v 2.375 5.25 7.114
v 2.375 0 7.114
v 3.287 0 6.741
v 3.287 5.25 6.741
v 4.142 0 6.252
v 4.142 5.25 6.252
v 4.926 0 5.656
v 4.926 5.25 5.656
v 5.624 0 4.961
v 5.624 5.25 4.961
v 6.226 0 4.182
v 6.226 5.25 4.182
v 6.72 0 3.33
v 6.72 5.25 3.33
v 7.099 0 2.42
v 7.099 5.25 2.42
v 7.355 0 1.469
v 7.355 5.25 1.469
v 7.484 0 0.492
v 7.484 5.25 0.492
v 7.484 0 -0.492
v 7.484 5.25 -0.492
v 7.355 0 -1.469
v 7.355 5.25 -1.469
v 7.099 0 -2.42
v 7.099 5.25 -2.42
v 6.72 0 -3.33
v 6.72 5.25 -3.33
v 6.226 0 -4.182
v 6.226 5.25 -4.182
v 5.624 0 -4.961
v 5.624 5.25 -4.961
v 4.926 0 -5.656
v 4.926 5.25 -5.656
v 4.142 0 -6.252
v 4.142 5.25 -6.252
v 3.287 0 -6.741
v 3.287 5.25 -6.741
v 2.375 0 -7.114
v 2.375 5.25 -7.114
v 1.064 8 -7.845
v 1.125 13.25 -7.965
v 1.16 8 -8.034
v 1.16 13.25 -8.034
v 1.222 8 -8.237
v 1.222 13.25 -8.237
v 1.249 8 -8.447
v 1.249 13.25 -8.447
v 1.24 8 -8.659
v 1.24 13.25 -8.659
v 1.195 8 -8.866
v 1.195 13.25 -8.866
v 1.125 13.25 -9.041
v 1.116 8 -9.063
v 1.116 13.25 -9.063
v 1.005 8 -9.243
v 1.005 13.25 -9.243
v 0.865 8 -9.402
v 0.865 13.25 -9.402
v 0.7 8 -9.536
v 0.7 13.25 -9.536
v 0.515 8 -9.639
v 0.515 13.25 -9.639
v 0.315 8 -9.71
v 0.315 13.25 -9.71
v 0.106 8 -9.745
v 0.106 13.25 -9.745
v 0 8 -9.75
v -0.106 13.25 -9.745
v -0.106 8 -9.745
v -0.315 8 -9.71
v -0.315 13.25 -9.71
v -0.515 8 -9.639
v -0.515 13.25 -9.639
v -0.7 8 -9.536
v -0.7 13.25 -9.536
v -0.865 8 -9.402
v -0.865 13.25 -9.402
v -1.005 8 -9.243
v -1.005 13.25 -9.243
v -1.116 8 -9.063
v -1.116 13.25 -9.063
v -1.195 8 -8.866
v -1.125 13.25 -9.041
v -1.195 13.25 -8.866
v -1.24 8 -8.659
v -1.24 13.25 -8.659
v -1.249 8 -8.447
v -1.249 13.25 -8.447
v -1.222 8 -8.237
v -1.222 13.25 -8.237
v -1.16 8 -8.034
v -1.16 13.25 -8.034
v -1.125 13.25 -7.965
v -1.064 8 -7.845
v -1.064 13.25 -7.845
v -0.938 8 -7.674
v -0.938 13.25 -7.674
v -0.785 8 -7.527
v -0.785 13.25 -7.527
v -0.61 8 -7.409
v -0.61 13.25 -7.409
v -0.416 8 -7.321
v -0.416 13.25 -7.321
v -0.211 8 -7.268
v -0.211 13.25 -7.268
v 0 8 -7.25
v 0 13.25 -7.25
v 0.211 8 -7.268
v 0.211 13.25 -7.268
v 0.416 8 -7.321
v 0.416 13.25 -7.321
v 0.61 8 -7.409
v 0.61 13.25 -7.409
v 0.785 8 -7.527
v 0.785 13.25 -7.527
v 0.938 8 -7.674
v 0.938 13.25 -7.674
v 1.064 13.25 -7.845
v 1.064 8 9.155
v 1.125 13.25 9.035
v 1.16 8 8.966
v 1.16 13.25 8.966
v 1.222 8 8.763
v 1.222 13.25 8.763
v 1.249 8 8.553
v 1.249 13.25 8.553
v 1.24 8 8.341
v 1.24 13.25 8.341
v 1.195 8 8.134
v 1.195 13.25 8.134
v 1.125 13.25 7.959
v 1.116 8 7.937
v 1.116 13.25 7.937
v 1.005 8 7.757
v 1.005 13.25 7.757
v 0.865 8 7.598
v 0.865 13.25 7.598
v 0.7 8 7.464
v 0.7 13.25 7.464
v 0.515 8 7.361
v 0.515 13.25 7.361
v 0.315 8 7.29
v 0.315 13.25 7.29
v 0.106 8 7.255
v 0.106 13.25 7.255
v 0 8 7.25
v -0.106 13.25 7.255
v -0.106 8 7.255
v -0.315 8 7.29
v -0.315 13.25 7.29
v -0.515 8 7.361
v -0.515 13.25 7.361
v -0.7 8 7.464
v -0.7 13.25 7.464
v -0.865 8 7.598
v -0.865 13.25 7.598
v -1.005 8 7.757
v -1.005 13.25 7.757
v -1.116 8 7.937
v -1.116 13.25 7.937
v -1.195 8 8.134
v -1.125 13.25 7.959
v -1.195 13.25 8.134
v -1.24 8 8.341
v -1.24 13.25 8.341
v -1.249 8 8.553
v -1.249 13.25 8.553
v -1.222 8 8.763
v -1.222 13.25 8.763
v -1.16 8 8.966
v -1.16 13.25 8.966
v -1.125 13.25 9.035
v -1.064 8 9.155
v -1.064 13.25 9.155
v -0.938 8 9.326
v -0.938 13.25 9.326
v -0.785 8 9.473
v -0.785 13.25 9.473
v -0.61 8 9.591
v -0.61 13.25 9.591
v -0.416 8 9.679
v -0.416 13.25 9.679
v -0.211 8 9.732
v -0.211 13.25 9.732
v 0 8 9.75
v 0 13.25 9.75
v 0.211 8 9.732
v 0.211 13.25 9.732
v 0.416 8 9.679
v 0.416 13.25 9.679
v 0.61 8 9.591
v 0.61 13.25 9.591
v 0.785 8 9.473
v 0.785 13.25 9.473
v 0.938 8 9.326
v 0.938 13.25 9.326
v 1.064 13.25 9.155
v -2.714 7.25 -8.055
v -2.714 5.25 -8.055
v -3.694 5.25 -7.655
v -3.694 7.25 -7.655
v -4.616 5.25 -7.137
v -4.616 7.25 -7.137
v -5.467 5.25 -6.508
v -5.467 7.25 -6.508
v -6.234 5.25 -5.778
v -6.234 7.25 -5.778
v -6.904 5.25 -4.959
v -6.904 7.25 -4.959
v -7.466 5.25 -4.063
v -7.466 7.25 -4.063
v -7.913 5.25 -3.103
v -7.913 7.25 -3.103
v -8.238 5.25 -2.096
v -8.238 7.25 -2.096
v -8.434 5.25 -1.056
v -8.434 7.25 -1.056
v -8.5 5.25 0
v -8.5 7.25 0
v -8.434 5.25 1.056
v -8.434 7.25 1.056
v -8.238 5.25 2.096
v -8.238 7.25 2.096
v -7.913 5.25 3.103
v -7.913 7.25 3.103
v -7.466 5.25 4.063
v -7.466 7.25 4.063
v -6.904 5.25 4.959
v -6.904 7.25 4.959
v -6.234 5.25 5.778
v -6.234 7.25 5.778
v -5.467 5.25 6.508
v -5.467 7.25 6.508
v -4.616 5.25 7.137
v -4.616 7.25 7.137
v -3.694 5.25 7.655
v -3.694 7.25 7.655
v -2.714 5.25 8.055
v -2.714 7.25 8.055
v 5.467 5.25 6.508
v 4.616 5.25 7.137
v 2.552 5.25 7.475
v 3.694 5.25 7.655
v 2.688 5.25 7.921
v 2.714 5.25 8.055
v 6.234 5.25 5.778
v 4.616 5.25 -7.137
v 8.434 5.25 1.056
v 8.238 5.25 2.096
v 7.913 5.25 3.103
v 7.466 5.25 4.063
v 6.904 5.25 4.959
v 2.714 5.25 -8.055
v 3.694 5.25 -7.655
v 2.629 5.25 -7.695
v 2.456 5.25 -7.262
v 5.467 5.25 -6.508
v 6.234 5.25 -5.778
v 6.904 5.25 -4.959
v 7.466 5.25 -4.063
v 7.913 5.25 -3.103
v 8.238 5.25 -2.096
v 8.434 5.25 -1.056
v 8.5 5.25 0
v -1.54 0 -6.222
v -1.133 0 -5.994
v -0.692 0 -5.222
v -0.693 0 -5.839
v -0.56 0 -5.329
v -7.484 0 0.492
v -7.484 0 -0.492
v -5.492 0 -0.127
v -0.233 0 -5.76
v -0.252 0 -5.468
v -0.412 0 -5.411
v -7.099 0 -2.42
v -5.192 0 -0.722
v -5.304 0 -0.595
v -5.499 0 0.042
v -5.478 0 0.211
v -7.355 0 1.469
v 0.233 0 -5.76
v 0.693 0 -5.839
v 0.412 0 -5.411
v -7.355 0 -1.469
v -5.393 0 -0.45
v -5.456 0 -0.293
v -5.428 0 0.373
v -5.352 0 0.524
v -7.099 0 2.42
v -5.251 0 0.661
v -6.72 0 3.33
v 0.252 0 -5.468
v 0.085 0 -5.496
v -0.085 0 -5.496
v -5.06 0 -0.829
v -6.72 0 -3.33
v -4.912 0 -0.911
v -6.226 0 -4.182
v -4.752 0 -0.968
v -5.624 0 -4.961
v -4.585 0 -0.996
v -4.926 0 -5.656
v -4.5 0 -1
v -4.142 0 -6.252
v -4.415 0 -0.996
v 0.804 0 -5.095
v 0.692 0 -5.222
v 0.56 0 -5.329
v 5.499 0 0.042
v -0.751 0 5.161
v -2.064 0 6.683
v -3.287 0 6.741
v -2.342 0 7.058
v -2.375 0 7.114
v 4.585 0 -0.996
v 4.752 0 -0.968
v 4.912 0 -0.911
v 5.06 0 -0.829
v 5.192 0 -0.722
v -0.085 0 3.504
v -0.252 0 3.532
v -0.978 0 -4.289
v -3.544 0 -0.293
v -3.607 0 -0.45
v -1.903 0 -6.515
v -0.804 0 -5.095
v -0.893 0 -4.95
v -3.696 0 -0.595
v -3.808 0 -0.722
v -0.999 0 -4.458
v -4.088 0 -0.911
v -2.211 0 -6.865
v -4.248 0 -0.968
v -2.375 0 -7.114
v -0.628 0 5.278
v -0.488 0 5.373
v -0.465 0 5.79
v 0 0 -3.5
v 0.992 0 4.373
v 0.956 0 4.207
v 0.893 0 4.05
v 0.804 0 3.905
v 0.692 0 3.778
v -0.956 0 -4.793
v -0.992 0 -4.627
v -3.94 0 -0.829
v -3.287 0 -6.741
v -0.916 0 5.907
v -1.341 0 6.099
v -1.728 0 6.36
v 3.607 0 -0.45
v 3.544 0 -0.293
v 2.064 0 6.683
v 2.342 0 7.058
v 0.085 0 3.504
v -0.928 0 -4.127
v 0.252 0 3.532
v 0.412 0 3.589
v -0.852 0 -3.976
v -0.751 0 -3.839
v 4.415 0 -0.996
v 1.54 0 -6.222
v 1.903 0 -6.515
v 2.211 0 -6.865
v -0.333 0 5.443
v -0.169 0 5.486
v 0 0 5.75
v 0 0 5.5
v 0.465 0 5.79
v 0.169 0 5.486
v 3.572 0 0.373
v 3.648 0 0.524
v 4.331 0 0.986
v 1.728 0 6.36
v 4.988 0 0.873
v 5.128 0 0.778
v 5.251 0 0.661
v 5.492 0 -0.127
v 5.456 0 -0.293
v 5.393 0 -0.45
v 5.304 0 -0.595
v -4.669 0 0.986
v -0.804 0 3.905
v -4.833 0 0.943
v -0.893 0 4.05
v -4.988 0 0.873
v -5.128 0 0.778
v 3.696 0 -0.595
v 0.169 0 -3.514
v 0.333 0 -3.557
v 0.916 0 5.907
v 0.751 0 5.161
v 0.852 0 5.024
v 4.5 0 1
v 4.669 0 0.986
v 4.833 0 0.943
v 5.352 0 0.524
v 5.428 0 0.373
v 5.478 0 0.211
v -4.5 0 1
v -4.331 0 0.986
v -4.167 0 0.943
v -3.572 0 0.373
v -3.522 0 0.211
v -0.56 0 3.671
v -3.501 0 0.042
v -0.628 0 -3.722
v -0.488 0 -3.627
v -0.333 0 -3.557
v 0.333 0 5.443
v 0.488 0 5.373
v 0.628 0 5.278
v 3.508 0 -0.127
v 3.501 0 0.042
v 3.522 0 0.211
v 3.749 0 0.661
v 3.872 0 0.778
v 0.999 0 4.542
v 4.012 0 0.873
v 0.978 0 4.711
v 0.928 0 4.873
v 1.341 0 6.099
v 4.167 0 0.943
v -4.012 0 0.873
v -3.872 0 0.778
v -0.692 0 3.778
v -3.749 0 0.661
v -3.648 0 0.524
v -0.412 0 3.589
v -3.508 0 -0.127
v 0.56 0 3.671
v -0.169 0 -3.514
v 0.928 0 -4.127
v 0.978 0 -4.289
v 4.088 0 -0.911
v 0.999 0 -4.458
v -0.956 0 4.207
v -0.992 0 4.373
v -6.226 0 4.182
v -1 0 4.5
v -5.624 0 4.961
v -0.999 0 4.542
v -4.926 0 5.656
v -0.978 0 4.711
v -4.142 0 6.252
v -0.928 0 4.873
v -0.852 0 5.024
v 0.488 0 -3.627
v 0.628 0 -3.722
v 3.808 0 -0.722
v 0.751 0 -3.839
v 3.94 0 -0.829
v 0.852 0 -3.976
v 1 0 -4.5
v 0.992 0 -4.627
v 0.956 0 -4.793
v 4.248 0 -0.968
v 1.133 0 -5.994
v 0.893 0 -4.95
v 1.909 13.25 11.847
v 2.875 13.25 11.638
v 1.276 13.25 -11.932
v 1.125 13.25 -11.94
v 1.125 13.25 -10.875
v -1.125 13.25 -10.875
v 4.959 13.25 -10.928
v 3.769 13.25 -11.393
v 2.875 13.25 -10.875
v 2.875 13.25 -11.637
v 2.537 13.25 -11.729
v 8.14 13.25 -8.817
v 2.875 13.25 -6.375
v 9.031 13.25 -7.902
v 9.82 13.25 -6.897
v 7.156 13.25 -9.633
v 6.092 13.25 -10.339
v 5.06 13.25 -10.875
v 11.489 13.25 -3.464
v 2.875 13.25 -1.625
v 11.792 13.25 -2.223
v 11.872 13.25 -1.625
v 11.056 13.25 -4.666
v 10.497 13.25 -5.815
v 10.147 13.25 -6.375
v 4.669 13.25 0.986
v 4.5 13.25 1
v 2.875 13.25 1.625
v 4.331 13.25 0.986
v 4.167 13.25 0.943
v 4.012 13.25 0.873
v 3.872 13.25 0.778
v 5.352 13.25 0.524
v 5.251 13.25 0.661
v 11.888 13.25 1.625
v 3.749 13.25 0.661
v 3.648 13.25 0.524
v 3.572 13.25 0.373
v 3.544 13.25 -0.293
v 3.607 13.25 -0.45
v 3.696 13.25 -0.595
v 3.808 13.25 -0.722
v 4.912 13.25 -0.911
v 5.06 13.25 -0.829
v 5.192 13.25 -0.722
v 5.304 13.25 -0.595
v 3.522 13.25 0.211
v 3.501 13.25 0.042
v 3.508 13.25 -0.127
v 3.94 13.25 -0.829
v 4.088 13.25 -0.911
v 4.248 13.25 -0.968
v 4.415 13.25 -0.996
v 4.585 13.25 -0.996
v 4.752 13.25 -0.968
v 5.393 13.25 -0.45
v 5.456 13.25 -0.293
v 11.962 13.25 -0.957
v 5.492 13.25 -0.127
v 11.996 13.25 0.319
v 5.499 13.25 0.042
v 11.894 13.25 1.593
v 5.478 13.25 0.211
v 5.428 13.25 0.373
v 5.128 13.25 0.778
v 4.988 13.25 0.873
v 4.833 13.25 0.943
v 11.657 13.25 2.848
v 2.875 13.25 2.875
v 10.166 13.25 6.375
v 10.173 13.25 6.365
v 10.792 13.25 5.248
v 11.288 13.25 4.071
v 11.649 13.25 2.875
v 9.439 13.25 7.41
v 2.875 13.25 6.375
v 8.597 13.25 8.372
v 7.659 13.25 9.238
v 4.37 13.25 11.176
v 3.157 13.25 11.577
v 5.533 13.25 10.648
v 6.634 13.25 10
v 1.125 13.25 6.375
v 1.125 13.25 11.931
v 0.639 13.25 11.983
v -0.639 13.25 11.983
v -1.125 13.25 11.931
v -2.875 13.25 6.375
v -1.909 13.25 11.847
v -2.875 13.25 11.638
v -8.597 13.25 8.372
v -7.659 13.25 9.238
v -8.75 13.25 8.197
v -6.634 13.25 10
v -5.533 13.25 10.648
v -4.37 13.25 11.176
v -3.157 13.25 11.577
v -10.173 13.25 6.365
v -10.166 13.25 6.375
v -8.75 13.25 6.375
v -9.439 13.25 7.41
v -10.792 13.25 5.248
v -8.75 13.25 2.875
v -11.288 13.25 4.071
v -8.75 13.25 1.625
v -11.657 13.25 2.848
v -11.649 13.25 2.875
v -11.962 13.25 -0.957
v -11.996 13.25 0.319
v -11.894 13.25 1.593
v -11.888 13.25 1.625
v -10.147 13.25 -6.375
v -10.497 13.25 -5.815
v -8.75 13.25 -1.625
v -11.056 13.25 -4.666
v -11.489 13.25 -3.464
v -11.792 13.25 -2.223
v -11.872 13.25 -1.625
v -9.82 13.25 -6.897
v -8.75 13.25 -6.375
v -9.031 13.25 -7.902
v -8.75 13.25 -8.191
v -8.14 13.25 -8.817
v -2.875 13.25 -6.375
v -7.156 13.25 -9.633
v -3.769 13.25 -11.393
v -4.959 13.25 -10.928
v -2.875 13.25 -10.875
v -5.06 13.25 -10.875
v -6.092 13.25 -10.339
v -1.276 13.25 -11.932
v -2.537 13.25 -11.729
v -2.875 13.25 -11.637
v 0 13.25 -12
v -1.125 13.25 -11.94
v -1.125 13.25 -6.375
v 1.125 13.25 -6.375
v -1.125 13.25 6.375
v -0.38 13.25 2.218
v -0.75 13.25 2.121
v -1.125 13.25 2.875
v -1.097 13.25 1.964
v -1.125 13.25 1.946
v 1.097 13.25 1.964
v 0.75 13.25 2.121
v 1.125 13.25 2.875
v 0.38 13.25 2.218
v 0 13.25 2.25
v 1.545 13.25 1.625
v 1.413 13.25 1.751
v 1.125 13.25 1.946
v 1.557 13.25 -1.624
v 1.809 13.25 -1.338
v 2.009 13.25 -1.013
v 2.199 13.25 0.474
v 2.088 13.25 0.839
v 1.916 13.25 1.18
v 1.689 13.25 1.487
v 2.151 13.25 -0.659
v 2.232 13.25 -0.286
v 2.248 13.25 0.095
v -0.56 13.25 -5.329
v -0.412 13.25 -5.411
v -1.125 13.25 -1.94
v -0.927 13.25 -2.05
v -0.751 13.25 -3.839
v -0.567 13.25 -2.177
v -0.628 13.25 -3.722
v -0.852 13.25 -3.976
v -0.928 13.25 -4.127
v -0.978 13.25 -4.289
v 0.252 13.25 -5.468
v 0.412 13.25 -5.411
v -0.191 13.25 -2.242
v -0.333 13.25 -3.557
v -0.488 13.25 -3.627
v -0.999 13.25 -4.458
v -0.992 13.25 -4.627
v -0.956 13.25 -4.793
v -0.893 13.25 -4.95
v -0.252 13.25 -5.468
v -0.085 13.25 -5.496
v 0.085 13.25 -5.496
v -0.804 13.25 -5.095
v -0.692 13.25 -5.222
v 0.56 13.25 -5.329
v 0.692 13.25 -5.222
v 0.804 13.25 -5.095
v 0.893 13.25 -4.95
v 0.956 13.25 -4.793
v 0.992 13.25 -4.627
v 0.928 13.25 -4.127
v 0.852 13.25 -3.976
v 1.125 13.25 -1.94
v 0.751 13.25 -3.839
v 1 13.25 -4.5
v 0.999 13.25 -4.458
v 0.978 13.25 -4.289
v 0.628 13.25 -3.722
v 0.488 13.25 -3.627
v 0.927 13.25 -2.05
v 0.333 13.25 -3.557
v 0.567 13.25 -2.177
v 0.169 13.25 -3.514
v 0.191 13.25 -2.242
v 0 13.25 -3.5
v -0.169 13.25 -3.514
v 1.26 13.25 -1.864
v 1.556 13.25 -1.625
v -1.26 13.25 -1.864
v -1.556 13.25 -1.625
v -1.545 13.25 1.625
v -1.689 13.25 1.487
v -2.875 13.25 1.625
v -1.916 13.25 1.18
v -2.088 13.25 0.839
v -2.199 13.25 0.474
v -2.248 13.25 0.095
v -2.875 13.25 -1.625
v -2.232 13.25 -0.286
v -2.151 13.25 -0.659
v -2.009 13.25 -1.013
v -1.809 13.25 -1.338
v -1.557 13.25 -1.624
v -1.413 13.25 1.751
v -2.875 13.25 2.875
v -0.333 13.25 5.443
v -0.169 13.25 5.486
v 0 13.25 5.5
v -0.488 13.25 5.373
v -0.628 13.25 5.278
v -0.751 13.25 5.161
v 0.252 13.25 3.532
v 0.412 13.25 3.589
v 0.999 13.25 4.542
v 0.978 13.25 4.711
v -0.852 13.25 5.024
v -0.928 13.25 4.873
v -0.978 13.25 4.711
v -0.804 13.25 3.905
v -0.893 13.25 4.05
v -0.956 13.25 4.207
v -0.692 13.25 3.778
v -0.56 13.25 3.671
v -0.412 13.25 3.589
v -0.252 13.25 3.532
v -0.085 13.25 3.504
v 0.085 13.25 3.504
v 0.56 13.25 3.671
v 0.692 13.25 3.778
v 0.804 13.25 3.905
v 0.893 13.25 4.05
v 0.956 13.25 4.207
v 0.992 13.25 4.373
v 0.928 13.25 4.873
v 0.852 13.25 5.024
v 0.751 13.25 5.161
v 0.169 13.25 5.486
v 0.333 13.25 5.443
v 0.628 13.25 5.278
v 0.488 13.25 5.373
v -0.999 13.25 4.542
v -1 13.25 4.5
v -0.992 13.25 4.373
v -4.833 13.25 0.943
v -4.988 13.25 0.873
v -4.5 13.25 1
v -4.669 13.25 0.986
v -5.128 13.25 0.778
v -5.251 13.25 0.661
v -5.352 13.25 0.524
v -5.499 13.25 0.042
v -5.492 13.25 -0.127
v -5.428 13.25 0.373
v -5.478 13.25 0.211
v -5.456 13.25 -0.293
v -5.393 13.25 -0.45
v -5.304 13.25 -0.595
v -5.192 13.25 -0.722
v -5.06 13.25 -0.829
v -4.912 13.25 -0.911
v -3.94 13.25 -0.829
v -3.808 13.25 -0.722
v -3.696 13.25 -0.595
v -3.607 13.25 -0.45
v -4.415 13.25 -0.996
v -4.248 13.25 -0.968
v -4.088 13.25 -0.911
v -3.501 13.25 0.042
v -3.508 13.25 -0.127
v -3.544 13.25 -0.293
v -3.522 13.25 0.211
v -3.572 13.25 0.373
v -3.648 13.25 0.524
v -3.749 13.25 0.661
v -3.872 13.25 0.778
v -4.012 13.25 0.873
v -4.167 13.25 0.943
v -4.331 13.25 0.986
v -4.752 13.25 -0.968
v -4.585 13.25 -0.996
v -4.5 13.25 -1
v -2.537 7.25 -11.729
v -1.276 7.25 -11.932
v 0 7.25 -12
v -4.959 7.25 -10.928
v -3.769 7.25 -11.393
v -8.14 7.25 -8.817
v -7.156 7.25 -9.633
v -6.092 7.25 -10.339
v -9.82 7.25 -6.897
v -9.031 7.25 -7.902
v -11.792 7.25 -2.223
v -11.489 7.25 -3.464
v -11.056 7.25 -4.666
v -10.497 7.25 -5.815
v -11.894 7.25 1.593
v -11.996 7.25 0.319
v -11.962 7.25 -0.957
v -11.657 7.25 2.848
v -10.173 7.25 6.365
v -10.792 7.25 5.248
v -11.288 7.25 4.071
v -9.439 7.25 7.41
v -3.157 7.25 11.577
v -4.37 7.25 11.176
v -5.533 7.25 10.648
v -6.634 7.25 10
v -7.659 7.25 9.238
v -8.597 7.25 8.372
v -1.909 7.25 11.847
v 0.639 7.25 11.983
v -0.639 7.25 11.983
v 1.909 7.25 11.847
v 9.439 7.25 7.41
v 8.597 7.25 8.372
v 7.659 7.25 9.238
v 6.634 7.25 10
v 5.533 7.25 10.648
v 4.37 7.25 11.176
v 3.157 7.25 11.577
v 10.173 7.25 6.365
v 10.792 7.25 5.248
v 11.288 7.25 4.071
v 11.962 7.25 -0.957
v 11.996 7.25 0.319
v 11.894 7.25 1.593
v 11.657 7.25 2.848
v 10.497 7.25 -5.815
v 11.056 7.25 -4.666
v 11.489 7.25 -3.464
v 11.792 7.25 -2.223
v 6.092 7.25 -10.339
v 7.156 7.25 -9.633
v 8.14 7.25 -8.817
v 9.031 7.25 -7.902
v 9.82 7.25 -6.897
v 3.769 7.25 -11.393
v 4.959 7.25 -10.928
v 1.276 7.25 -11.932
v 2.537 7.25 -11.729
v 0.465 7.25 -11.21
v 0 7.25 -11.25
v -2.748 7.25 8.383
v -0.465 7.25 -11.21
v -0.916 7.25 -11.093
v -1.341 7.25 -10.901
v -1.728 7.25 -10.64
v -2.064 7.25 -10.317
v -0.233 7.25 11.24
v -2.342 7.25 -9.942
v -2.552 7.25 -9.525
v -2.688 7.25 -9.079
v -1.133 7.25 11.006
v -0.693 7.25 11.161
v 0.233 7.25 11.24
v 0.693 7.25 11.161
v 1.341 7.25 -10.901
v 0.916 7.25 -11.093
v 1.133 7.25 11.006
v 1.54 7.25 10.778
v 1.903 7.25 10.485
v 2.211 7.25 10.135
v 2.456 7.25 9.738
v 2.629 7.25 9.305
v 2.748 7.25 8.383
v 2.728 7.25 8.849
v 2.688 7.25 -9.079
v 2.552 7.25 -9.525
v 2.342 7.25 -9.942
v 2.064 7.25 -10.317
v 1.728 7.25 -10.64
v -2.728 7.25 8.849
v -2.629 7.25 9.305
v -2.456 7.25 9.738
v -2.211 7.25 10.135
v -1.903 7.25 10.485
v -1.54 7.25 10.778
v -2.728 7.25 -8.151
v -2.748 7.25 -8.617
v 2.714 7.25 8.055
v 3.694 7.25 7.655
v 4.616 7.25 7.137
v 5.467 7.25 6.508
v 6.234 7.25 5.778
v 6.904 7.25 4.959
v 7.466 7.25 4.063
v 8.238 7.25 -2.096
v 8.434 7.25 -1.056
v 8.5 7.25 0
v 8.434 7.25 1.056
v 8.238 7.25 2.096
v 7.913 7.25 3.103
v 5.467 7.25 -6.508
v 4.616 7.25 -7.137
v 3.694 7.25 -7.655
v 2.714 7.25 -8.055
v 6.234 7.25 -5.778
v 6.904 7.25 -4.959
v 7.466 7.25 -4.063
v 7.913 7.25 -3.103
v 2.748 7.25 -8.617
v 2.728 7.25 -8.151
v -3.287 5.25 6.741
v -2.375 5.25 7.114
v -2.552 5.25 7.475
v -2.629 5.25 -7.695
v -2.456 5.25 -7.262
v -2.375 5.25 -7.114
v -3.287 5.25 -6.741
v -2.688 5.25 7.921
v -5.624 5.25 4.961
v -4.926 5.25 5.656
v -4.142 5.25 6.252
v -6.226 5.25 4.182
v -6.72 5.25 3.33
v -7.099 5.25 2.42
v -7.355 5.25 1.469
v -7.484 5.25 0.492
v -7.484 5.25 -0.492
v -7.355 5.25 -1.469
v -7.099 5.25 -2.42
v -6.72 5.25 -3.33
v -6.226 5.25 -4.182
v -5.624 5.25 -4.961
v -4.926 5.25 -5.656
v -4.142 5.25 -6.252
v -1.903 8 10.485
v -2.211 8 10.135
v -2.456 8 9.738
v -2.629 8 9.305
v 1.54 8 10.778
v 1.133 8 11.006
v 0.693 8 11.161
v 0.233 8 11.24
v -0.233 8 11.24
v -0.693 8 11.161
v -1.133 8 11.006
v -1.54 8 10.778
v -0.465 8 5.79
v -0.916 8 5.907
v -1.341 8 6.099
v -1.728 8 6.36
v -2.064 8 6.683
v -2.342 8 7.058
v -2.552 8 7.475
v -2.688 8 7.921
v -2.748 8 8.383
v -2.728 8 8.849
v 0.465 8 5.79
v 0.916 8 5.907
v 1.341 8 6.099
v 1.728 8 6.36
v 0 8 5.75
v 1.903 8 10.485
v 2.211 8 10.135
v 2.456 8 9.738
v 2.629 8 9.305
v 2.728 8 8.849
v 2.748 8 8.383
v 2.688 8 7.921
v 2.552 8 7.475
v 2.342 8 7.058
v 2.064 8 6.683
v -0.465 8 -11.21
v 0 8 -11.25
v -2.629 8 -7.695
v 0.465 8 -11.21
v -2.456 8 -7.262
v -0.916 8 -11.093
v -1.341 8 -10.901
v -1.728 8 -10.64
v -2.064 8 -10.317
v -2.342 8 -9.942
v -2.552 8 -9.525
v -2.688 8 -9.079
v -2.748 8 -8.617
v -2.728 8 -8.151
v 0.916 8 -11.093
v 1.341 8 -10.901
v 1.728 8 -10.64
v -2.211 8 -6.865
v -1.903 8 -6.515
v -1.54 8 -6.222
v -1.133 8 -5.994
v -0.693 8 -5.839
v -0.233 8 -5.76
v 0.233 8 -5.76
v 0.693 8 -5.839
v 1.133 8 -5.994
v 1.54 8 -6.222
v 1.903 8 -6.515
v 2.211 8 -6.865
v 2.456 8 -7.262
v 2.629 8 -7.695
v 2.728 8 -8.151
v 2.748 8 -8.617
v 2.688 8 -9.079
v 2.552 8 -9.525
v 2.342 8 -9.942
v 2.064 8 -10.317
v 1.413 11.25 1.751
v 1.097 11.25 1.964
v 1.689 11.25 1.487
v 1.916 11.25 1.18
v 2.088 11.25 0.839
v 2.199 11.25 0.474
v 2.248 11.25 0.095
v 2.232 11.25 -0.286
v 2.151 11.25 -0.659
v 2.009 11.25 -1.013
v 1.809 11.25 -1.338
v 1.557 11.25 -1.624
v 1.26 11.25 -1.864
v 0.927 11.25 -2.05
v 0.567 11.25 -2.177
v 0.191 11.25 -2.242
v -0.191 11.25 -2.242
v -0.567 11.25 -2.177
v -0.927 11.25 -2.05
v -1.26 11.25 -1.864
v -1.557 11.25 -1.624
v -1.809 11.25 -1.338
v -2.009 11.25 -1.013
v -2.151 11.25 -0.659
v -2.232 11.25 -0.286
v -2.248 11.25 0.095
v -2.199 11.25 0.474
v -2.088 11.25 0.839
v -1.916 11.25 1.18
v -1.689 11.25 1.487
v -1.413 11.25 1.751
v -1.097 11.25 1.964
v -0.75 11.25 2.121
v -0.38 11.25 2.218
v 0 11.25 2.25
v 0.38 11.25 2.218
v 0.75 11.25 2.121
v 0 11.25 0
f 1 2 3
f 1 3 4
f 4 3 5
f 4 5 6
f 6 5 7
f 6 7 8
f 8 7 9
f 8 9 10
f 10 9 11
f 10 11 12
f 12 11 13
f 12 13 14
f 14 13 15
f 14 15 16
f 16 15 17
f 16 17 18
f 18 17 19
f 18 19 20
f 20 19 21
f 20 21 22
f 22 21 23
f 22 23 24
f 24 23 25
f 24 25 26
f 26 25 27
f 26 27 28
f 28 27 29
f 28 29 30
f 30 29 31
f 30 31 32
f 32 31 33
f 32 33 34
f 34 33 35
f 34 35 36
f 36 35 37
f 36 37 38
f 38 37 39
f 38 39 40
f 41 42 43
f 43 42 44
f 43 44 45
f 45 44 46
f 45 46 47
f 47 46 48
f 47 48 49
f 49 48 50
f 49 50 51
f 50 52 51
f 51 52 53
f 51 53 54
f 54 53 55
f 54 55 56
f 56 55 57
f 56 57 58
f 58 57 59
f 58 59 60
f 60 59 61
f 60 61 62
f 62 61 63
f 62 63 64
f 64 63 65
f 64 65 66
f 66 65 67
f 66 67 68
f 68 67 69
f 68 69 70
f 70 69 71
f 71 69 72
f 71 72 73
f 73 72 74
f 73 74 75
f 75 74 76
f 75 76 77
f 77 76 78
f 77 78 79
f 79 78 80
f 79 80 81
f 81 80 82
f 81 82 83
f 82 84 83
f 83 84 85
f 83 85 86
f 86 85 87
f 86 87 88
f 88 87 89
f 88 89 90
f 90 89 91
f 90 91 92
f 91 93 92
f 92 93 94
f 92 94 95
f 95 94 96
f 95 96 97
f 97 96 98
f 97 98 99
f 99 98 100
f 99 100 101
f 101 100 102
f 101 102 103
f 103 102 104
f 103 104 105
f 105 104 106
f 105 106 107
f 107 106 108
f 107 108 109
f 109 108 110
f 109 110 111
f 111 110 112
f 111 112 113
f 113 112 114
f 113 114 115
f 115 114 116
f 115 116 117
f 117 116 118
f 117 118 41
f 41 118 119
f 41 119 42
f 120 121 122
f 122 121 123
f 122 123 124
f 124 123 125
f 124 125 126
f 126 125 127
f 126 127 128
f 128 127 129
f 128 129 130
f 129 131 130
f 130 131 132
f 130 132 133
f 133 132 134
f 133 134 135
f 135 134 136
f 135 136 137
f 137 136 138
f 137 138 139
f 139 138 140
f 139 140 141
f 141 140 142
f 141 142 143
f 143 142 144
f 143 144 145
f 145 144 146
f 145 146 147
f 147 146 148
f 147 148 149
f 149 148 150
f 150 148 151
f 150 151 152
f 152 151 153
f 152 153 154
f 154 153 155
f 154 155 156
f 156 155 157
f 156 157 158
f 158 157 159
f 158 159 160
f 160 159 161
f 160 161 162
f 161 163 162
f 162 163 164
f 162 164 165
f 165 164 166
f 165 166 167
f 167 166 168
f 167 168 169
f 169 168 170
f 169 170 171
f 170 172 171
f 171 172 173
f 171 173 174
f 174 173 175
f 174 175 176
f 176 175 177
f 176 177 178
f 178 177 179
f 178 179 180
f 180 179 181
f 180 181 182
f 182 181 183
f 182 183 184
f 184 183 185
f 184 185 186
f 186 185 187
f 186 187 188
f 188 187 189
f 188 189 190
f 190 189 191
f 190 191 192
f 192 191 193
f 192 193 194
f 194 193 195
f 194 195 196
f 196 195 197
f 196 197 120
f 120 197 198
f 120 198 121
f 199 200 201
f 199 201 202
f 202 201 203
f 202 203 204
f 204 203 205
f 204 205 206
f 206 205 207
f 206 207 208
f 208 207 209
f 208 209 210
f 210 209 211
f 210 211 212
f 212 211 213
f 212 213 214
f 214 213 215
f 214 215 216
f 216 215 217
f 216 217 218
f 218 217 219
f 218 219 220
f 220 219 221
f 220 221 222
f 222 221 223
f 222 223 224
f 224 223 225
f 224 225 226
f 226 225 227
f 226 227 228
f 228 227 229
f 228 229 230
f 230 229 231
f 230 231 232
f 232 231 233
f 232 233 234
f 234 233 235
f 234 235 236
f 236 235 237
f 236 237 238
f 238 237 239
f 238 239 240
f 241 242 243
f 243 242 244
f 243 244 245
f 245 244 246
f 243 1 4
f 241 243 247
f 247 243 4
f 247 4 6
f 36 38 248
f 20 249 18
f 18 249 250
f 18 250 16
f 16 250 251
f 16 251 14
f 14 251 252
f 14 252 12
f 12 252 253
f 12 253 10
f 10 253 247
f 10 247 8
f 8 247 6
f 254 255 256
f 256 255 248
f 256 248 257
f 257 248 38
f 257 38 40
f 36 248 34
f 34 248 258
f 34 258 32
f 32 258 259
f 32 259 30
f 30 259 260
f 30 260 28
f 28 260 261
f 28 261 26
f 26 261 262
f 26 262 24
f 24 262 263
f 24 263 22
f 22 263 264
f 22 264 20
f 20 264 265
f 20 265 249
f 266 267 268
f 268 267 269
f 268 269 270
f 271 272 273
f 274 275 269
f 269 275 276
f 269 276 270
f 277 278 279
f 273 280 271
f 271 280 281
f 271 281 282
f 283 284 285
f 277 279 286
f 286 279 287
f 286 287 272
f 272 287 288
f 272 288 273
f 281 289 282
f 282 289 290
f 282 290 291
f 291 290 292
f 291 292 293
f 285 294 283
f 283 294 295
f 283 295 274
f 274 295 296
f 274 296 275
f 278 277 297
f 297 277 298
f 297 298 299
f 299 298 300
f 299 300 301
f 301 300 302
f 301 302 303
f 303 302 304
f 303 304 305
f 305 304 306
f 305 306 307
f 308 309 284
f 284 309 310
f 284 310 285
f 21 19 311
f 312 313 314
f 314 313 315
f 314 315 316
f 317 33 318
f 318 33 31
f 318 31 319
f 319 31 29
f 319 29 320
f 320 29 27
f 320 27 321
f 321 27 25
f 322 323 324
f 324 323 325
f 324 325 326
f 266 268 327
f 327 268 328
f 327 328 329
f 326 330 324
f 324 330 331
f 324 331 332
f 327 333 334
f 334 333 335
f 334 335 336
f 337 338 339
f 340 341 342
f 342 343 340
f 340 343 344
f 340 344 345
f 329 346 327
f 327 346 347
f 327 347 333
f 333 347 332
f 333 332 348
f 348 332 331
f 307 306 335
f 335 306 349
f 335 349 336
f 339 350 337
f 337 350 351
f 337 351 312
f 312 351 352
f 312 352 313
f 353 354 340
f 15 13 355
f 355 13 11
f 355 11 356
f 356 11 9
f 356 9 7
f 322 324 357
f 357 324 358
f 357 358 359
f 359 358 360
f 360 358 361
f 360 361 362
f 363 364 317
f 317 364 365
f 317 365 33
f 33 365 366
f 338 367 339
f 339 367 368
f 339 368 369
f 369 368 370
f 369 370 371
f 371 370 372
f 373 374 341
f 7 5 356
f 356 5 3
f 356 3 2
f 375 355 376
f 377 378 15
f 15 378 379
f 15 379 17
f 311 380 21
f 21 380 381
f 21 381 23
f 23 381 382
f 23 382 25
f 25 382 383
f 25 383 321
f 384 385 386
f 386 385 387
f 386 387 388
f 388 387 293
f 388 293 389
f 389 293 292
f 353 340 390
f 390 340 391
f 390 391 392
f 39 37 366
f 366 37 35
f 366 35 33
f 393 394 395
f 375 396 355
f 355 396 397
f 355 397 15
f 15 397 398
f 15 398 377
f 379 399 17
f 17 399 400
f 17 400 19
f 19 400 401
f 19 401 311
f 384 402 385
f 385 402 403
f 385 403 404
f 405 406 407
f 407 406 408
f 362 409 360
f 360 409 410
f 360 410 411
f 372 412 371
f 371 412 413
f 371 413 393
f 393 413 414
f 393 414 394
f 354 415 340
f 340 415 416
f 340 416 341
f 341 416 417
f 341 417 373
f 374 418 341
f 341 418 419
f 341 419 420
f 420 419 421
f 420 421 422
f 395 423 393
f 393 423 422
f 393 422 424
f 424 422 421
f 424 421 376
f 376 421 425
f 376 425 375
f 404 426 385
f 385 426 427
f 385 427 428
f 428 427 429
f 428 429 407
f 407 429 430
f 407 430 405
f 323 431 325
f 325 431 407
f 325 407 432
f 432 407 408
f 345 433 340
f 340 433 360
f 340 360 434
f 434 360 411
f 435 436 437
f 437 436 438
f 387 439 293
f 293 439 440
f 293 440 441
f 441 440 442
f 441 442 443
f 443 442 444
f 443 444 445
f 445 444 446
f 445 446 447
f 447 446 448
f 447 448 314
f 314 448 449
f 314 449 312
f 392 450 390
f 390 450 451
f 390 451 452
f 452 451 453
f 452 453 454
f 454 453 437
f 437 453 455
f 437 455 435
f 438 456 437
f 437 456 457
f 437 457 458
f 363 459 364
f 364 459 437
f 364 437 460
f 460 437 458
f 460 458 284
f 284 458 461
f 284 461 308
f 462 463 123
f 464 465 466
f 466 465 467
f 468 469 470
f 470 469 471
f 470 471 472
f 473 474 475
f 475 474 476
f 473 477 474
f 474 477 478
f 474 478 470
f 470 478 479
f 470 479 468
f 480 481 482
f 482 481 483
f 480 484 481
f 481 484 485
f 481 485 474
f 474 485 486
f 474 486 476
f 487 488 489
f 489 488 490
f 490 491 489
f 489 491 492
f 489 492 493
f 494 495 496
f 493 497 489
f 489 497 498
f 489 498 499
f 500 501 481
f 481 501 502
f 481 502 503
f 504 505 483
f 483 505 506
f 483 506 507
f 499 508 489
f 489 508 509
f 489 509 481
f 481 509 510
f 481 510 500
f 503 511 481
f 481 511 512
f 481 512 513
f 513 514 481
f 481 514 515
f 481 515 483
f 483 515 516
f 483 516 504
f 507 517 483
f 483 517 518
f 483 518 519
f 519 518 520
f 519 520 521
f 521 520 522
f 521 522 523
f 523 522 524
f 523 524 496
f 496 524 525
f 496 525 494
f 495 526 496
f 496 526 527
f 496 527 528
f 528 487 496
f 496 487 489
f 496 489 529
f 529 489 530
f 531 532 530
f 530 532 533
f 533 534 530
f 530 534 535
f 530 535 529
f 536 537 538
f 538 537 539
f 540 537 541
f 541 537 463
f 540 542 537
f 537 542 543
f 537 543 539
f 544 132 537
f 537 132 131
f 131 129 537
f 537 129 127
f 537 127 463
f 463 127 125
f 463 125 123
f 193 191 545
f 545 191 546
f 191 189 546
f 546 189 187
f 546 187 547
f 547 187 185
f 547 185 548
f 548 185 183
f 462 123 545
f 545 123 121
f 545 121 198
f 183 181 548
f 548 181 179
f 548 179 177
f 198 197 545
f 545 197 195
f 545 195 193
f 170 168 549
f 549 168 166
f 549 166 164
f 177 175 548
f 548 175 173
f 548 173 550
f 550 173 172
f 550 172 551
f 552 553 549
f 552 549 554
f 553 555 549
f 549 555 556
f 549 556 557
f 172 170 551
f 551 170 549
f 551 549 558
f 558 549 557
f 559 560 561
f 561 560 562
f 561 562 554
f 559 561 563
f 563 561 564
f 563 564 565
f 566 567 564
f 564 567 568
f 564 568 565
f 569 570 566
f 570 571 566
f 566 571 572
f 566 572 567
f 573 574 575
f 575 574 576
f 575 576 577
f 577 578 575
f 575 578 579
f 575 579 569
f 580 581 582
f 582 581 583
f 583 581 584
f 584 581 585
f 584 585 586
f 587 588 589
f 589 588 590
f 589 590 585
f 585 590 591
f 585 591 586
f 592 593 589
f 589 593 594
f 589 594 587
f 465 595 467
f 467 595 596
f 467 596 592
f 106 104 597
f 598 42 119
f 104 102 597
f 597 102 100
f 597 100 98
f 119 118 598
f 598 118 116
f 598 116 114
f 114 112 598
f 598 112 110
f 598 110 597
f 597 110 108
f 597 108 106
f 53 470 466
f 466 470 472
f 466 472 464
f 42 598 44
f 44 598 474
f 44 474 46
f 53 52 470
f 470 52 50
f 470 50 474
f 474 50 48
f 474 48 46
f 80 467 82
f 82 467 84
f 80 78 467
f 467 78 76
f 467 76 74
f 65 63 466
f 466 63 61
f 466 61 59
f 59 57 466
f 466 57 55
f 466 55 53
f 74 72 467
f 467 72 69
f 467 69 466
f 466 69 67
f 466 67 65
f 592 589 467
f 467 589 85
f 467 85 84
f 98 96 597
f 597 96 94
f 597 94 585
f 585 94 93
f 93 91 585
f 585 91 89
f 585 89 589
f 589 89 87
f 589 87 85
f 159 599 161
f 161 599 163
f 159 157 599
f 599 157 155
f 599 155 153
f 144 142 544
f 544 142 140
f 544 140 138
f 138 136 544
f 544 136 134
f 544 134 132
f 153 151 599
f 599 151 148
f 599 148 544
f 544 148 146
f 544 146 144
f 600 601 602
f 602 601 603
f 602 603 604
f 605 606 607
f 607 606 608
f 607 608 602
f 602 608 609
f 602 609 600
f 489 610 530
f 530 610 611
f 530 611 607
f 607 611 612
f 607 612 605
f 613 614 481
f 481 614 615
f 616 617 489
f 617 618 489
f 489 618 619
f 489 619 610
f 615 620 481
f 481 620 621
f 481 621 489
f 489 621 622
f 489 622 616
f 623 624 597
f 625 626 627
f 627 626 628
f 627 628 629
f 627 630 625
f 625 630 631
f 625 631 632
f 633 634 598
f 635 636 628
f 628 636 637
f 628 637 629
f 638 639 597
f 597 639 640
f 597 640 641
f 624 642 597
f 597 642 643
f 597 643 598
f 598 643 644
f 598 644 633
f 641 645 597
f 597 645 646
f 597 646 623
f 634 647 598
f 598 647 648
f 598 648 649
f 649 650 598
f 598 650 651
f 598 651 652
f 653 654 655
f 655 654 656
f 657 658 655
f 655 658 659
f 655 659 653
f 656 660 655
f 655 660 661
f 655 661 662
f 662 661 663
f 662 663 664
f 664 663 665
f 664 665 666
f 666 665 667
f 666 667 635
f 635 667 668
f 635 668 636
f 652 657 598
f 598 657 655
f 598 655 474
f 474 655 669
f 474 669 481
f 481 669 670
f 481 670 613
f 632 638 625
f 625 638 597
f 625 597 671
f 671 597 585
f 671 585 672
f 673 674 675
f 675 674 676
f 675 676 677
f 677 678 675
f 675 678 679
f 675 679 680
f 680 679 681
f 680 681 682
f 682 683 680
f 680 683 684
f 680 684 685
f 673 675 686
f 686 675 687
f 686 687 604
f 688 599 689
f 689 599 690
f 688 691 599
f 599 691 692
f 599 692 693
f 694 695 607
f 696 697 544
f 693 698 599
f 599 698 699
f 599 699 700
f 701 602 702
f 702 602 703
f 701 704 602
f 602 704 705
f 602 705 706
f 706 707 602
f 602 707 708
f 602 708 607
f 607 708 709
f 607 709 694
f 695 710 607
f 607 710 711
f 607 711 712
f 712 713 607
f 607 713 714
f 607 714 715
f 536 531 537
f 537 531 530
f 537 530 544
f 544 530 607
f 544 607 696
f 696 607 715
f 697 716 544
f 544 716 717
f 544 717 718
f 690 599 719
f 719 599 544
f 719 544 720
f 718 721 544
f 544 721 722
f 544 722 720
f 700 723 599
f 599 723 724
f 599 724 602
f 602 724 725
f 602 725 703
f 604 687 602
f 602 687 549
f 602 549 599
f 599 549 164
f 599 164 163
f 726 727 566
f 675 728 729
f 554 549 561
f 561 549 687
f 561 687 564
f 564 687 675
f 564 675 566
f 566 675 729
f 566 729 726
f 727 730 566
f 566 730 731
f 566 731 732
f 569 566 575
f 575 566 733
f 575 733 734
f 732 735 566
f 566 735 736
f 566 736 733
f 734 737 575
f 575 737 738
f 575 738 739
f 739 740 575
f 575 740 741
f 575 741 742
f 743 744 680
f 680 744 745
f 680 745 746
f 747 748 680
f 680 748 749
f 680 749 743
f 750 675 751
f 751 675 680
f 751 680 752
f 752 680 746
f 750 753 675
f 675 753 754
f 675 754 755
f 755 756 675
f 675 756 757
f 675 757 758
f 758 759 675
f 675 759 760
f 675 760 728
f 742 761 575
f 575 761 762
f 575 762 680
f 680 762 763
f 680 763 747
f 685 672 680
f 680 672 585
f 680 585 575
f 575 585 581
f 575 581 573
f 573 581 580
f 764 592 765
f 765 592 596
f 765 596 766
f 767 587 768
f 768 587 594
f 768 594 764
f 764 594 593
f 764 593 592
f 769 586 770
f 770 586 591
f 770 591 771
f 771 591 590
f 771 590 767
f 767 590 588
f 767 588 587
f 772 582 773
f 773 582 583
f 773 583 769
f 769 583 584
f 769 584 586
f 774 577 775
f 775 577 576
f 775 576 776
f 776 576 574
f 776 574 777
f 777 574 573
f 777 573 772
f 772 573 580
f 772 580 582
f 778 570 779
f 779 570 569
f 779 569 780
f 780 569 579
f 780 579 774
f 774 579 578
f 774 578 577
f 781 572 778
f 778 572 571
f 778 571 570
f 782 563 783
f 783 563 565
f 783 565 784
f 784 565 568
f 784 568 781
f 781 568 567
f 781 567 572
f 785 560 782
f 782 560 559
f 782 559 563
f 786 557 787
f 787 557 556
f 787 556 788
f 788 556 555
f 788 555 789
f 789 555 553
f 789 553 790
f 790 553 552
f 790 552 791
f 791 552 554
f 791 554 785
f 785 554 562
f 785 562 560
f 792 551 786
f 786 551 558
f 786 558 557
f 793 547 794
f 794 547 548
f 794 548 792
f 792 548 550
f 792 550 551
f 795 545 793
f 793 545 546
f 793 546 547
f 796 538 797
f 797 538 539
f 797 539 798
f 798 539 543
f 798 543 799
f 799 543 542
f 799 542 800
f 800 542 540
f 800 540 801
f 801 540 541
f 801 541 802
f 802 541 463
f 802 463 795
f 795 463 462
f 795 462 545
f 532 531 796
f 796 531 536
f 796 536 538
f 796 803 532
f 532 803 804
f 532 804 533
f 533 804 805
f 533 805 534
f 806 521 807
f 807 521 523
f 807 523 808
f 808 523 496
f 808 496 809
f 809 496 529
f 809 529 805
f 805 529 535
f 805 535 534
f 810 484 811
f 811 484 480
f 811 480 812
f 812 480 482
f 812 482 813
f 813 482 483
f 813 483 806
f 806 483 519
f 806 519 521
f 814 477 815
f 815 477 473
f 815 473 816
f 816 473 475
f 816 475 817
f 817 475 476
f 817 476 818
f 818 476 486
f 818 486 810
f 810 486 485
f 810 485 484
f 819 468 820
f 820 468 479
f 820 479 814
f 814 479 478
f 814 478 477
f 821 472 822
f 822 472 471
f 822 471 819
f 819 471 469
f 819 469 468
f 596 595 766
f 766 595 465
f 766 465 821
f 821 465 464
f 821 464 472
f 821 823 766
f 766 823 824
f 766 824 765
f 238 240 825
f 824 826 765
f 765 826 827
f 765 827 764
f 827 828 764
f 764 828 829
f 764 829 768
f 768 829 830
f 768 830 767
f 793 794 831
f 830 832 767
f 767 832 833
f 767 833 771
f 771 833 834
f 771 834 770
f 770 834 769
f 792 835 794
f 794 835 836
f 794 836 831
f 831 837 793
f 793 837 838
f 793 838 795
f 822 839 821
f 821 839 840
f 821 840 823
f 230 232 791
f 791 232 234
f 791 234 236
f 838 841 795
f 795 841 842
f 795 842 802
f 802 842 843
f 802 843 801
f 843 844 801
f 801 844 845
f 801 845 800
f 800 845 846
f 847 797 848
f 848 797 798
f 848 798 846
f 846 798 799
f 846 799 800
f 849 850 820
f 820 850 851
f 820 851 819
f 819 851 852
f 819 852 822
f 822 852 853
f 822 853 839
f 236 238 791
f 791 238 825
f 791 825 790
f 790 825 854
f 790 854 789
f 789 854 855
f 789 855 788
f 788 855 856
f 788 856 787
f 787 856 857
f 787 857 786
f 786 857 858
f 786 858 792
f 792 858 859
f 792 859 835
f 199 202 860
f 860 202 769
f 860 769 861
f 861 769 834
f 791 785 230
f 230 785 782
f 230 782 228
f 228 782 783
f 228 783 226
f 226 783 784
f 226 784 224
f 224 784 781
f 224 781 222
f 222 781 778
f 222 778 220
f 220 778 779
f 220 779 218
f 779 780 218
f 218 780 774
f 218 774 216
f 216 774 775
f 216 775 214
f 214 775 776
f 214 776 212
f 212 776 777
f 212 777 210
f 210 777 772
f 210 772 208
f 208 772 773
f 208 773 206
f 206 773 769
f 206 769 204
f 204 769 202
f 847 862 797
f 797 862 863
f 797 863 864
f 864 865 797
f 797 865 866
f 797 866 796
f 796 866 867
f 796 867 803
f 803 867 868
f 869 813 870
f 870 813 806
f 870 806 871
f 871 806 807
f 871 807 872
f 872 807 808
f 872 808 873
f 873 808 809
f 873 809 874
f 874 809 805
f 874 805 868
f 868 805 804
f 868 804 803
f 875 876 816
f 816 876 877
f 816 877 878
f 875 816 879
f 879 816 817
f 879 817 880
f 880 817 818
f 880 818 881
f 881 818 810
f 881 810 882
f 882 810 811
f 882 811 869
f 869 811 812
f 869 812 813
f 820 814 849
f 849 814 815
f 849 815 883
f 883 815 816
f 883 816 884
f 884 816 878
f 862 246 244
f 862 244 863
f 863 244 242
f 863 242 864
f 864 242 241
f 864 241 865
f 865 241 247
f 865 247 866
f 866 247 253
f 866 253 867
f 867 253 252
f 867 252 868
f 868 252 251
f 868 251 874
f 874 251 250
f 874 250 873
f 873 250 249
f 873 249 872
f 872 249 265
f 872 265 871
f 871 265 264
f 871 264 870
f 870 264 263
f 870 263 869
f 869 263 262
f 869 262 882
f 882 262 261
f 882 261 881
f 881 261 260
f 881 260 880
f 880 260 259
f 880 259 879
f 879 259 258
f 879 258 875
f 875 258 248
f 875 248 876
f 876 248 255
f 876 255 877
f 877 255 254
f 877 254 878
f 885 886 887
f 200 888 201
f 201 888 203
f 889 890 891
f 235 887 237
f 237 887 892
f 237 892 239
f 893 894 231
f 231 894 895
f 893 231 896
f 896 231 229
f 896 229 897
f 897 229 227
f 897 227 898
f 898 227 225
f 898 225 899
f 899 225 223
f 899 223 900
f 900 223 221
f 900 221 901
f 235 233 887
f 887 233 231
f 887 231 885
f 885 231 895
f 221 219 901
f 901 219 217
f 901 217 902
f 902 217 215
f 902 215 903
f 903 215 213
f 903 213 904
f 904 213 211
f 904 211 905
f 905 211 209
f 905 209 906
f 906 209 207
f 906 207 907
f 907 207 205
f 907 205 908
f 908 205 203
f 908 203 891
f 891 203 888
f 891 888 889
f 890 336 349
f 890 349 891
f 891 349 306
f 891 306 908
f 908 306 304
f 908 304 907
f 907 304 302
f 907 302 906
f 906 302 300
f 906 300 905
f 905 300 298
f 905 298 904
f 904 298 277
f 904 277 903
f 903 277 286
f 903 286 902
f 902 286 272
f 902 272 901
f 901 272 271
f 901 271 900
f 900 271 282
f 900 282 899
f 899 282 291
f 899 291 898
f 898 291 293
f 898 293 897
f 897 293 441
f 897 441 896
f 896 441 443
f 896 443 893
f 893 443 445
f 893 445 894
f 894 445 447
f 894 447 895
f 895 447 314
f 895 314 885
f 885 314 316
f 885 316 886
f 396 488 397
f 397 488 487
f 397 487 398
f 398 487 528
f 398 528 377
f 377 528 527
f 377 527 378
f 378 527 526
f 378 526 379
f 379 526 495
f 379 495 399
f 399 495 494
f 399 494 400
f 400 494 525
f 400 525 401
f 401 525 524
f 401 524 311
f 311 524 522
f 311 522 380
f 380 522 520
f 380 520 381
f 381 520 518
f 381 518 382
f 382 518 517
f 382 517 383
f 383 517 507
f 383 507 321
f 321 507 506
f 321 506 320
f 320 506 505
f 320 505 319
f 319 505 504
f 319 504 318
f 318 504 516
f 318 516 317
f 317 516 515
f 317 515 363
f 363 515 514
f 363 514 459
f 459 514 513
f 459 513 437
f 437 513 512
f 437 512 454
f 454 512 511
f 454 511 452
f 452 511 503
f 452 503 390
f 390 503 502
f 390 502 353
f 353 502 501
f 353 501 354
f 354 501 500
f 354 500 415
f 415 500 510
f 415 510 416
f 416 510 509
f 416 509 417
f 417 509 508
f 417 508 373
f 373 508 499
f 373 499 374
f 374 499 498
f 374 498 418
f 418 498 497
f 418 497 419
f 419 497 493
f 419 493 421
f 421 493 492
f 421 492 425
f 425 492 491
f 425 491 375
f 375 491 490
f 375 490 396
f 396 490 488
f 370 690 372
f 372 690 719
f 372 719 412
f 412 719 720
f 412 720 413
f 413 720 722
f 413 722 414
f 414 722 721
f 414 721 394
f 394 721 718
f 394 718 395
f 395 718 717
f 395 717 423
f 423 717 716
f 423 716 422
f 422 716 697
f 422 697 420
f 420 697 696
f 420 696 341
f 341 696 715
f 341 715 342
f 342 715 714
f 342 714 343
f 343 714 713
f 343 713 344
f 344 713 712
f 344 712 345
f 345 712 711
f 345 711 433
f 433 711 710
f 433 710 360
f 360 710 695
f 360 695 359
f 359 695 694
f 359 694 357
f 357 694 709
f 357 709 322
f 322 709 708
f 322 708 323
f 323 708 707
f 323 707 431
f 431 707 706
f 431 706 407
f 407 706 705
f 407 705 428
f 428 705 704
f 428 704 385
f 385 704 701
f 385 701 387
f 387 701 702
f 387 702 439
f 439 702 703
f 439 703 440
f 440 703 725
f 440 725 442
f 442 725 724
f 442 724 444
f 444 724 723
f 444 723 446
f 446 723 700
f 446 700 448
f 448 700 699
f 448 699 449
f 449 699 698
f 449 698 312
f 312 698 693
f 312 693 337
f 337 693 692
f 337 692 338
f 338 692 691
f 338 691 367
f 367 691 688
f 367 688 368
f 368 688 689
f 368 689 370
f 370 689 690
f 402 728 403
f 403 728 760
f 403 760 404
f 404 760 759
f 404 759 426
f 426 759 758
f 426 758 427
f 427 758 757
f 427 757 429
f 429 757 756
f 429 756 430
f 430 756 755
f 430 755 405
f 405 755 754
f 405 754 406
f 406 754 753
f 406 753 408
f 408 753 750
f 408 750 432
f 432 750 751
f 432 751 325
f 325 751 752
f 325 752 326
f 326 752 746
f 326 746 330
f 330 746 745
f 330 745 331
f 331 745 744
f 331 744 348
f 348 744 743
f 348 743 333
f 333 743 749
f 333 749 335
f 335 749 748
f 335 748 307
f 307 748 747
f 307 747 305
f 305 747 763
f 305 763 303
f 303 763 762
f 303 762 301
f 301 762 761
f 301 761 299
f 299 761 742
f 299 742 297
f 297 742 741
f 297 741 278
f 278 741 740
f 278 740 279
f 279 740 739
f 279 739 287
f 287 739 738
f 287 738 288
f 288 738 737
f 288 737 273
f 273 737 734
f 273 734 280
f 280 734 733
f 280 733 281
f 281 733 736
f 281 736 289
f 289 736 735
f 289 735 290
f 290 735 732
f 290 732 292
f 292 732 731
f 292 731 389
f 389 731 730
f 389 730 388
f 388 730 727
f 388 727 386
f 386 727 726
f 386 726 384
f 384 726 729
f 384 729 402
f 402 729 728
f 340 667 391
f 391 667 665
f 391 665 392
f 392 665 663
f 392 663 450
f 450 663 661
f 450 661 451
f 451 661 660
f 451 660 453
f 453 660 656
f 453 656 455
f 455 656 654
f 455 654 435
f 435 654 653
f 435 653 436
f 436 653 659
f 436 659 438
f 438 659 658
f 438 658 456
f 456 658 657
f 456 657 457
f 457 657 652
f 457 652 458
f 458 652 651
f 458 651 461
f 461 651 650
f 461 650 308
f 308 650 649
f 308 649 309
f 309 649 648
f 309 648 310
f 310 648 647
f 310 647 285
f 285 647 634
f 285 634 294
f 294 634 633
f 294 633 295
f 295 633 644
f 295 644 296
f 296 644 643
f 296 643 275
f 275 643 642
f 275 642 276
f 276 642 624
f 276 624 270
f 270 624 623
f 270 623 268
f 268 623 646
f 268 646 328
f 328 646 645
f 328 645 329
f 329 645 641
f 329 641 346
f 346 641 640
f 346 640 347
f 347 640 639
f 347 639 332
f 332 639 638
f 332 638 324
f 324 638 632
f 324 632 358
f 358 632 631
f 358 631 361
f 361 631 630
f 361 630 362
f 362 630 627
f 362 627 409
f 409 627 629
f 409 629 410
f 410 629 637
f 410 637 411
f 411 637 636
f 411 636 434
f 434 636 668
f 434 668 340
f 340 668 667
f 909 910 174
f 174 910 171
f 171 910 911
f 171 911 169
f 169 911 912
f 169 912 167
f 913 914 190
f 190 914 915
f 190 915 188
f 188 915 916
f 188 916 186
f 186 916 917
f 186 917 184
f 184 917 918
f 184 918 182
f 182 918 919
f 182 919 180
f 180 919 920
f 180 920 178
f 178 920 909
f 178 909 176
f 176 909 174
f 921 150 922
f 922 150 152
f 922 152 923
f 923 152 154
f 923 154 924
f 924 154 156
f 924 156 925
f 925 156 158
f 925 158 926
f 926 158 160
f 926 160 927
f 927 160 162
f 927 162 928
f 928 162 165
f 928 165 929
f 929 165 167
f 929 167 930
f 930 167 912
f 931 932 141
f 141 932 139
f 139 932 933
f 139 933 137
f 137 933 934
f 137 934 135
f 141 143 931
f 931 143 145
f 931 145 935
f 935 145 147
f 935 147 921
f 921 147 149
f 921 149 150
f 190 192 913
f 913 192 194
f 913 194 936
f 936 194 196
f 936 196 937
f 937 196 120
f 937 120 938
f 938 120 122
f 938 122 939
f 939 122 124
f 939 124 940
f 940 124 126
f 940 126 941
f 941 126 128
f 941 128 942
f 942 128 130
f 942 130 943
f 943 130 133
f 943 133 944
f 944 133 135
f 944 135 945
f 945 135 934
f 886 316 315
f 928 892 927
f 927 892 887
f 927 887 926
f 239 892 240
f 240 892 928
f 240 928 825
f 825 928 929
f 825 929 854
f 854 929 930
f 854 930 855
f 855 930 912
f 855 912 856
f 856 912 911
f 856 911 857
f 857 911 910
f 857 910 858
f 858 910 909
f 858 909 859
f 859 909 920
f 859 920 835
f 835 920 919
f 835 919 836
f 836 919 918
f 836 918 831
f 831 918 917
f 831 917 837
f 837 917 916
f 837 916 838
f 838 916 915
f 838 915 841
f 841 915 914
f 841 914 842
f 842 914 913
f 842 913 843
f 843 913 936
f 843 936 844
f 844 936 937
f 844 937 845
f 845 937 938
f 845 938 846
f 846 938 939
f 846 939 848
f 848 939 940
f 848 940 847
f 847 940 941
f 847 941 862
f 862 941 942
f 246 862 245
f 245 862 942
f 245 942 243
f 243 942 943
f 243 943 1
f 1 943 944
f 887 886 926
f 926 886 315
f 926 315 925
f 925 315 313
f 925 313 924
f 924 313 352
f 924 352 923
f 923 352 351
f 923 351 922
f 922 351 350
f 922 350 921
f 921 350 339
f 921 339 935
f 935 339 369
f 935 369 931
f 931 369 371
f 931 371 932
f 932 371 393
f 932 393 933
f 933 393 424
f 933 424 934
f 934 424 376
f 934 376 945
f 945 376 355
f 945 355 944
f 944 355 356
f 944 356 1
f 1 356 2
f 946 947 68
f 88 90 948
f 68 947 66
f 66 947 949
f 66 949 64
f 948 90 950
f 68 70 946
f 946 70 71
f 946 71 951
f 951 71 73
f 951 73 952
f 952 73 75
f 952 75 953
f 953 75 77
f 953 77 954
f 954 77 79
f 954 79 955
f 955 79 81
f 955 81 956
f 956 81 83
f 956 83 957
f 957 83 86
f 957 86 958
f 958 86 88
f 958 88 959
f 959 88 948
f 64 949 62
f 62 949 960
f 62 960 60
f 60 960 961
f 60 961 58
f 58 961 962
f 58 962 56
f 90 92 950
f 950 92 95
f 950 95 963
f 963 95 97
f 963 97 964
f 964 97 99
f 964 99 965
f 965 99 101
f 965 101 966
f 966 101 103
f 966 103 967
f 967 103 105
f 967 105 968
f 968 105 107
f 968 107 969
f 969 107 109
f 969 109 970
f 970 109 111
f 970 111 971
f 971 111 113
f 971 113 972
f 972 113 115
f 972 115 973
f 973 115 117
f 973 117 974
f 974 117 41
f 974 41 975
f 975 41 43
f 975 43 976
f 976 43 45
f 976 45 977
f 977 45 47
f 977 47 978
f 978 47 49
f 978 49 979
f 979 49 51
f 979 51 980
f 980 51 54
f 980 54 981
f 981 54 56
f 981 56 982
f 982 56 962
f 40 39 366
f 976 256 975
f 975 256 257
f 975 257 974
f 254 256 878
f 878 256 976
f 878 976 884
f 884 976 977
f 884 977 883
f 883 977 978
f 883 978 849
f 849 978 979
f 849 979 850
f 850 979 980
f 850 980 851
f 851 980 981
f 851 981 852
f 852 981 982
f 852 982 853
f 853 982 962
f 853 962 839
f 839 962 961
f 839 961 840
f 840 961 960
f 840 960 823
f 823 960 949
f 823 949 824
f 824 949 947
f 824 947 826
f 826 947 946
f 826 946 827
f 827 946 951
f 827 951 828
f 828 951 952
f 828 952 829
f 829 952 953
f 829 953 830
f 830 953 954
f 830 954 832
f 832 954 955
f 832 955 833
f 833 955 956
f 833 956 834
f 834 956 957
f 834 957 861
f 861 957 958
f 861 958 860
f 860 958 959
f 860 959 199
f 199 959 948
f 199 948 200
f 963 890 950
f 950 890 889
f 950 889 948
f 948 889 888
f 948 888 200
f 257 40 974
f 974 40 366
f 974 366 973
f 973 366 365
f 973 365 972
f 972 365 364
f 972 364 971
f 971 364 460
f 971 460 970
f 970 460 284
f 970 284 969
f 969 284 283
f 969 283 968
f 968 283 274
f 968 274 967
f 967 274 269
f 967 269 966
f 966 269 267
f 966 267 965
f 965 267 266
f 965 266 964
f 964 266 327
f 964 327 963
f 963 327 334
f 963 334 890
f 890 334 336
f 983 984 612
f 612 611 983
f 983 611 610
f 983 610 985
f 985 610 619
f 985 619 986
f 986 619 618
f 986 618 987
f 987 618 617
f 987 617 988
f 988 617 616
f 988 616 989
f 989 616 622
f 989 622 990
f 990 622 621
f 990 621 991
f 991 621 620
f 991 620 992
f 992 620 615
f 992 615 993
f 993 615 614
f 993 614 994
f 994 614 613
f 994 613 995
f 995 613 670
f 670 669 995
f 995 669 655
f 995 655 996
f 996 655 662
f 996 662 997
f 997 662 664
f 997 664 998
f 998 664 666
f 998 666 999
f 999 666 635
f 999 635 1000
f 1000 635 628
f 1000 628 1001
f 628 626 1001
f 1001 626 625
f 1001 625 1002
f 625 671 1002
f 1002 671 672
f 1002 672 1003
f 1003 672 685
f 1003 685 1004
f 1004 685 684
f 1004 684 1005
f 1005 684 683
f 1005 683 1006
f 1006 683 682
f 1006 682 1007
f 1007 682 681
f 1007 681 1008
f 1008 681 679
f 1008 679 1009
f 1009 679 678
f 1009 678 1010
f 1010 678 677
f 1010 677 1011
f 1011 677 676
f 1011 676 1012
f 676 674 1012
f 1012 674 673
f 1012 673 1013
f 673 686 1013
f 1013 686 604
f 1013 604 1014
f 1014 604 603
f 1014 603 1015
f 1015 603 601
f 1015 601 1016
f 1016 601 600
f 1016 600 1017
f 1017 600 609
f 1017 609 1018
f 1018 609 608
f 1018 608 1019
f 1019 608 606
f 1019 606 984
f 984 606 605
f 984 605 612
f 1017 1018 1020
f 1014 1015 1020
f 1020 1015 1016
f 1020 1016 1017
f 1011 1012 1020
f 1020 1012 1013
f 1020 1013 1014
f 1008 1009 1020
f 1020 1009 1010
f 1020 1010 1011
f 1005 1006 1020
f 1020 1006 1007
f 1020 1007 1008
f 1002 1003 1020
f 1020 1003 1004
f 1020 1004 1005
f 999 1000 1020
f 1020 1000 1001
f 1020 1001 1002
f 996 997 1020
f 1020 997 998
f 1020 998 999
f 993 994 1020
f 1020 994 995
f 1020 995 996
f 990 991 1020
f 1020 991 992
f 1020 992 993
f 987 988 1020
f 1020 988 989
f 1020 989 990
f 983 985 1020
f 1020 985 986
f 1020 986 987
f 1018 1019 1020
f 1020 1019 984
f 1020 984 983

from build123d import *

# Parameters (mm, degrees)
SKETCH2_R          = 1
CUT_EXTRUDE1_DEPTH = 22.53050162
CIRPATTERN1_COUNT  = 4
SKETCH5_R          = 1.25
CUT_EXTRUDE4_DEPTH = 10
SKETCH3_R          = 2.75
CUT_EXTRUDE2_DEPTH = 8
SKETCH4_R          = 2.25
CUT_EXTRUDE3_DEPTH = 2


with BuildPart() as part:
    # Sketch1 → Revolve1 (revolve)
    with BuildSketch(Plane.XY, mode=Mode.PRIVATE) as revolve1_sk:
        Polygon((0, 13.25), (0, 0), (7.5, 0), (7.5, 5.25), (8.5, 5.25), (8.5, 7.25), (12, 7.25), (12, 13.25), align=None)
    revolve(revolve1_sk.sketch.rotate(Axis((0, 0, 0), (0, 1, 0)), 90), axis=Axis((0, 0, 0), (0, 1, 0)))

    # Sketch2 → Cut-Extrude1 (cut, through all)
    with BuildSketch(Plane(origin=(0, 13.25, 0), x_dir=(1, 0, 0), z_dir=(0, 1, 0))):
        with Locations(Location((4.5, 0, 0), (0, 0, 270))):
            Circle(SKETCH2_R)
    cut_extrude1 = extrude(amount=-CUT_EXTRUDE1_DEPTH, mode=Mode.SUBTRACT)

    # CirPattern1: Cut-Extrude1 ×4 about axis
    cirpattern1_axis = Axis((0, 0, 0), (0, 1, 0))
    for i in range(1, CIRPATTERN1_COUNT):
        add(cut_extrude1.rotate(cirpattern1_axis, i * 360 / CIRPATTERN1_COUNT), mode=Mode.SUBTRACT)

    # Sketch5 → Cut-Extrude4 (cut)
    with BuildSketch(Plane(origin=(0, 13.25, 0), x_dir=(1, 0, 0), z_dir=(0, 1, 0))):
        with Locations(Location((0, 8.5, 0), (0, 0, 270))):
            Circle(SKETCH5_R)
        with Locations(Location((0, -8.5, 0), (0, 0, 270))):
            Circle(SKETCH5_R)
    extrude(amount=-CUT_EXTRUDE4_DEPTH, mode=Mode.SUBTRACT)

    # Sketch3 → Cut-Extrude2 (cut)
    with BuildSketch(Plane.XZ):
        with Locations(Location((0, 8.5, 0), (0, 0, 270))):
            Circle(SKETCH3_R)
        with Locations(Location((0, -8.5, 0), (0, 0, 270))):
            Circle(SKETCH3_R)
    extrude(amount=-CUT_EXTRUDE2_DEPTH, mode=Mode.SUBTRACT)

    # Sketch4 → Cut-Extrude3 (cut)
    with BuildSketch(Plane(origin=(0, 13.25, 0), x_dir=(1, 0, 0), z_dir=(0, 1, 0))):
        with Locations(Location((0, 0, 0), (0, 0, 270))):
            Circle(SKETCH4_R)
    extrude(amount=-CUT_EXTRUDE3_DEPTH, mode=Mode.SUBTRACT)


solid = part.part
